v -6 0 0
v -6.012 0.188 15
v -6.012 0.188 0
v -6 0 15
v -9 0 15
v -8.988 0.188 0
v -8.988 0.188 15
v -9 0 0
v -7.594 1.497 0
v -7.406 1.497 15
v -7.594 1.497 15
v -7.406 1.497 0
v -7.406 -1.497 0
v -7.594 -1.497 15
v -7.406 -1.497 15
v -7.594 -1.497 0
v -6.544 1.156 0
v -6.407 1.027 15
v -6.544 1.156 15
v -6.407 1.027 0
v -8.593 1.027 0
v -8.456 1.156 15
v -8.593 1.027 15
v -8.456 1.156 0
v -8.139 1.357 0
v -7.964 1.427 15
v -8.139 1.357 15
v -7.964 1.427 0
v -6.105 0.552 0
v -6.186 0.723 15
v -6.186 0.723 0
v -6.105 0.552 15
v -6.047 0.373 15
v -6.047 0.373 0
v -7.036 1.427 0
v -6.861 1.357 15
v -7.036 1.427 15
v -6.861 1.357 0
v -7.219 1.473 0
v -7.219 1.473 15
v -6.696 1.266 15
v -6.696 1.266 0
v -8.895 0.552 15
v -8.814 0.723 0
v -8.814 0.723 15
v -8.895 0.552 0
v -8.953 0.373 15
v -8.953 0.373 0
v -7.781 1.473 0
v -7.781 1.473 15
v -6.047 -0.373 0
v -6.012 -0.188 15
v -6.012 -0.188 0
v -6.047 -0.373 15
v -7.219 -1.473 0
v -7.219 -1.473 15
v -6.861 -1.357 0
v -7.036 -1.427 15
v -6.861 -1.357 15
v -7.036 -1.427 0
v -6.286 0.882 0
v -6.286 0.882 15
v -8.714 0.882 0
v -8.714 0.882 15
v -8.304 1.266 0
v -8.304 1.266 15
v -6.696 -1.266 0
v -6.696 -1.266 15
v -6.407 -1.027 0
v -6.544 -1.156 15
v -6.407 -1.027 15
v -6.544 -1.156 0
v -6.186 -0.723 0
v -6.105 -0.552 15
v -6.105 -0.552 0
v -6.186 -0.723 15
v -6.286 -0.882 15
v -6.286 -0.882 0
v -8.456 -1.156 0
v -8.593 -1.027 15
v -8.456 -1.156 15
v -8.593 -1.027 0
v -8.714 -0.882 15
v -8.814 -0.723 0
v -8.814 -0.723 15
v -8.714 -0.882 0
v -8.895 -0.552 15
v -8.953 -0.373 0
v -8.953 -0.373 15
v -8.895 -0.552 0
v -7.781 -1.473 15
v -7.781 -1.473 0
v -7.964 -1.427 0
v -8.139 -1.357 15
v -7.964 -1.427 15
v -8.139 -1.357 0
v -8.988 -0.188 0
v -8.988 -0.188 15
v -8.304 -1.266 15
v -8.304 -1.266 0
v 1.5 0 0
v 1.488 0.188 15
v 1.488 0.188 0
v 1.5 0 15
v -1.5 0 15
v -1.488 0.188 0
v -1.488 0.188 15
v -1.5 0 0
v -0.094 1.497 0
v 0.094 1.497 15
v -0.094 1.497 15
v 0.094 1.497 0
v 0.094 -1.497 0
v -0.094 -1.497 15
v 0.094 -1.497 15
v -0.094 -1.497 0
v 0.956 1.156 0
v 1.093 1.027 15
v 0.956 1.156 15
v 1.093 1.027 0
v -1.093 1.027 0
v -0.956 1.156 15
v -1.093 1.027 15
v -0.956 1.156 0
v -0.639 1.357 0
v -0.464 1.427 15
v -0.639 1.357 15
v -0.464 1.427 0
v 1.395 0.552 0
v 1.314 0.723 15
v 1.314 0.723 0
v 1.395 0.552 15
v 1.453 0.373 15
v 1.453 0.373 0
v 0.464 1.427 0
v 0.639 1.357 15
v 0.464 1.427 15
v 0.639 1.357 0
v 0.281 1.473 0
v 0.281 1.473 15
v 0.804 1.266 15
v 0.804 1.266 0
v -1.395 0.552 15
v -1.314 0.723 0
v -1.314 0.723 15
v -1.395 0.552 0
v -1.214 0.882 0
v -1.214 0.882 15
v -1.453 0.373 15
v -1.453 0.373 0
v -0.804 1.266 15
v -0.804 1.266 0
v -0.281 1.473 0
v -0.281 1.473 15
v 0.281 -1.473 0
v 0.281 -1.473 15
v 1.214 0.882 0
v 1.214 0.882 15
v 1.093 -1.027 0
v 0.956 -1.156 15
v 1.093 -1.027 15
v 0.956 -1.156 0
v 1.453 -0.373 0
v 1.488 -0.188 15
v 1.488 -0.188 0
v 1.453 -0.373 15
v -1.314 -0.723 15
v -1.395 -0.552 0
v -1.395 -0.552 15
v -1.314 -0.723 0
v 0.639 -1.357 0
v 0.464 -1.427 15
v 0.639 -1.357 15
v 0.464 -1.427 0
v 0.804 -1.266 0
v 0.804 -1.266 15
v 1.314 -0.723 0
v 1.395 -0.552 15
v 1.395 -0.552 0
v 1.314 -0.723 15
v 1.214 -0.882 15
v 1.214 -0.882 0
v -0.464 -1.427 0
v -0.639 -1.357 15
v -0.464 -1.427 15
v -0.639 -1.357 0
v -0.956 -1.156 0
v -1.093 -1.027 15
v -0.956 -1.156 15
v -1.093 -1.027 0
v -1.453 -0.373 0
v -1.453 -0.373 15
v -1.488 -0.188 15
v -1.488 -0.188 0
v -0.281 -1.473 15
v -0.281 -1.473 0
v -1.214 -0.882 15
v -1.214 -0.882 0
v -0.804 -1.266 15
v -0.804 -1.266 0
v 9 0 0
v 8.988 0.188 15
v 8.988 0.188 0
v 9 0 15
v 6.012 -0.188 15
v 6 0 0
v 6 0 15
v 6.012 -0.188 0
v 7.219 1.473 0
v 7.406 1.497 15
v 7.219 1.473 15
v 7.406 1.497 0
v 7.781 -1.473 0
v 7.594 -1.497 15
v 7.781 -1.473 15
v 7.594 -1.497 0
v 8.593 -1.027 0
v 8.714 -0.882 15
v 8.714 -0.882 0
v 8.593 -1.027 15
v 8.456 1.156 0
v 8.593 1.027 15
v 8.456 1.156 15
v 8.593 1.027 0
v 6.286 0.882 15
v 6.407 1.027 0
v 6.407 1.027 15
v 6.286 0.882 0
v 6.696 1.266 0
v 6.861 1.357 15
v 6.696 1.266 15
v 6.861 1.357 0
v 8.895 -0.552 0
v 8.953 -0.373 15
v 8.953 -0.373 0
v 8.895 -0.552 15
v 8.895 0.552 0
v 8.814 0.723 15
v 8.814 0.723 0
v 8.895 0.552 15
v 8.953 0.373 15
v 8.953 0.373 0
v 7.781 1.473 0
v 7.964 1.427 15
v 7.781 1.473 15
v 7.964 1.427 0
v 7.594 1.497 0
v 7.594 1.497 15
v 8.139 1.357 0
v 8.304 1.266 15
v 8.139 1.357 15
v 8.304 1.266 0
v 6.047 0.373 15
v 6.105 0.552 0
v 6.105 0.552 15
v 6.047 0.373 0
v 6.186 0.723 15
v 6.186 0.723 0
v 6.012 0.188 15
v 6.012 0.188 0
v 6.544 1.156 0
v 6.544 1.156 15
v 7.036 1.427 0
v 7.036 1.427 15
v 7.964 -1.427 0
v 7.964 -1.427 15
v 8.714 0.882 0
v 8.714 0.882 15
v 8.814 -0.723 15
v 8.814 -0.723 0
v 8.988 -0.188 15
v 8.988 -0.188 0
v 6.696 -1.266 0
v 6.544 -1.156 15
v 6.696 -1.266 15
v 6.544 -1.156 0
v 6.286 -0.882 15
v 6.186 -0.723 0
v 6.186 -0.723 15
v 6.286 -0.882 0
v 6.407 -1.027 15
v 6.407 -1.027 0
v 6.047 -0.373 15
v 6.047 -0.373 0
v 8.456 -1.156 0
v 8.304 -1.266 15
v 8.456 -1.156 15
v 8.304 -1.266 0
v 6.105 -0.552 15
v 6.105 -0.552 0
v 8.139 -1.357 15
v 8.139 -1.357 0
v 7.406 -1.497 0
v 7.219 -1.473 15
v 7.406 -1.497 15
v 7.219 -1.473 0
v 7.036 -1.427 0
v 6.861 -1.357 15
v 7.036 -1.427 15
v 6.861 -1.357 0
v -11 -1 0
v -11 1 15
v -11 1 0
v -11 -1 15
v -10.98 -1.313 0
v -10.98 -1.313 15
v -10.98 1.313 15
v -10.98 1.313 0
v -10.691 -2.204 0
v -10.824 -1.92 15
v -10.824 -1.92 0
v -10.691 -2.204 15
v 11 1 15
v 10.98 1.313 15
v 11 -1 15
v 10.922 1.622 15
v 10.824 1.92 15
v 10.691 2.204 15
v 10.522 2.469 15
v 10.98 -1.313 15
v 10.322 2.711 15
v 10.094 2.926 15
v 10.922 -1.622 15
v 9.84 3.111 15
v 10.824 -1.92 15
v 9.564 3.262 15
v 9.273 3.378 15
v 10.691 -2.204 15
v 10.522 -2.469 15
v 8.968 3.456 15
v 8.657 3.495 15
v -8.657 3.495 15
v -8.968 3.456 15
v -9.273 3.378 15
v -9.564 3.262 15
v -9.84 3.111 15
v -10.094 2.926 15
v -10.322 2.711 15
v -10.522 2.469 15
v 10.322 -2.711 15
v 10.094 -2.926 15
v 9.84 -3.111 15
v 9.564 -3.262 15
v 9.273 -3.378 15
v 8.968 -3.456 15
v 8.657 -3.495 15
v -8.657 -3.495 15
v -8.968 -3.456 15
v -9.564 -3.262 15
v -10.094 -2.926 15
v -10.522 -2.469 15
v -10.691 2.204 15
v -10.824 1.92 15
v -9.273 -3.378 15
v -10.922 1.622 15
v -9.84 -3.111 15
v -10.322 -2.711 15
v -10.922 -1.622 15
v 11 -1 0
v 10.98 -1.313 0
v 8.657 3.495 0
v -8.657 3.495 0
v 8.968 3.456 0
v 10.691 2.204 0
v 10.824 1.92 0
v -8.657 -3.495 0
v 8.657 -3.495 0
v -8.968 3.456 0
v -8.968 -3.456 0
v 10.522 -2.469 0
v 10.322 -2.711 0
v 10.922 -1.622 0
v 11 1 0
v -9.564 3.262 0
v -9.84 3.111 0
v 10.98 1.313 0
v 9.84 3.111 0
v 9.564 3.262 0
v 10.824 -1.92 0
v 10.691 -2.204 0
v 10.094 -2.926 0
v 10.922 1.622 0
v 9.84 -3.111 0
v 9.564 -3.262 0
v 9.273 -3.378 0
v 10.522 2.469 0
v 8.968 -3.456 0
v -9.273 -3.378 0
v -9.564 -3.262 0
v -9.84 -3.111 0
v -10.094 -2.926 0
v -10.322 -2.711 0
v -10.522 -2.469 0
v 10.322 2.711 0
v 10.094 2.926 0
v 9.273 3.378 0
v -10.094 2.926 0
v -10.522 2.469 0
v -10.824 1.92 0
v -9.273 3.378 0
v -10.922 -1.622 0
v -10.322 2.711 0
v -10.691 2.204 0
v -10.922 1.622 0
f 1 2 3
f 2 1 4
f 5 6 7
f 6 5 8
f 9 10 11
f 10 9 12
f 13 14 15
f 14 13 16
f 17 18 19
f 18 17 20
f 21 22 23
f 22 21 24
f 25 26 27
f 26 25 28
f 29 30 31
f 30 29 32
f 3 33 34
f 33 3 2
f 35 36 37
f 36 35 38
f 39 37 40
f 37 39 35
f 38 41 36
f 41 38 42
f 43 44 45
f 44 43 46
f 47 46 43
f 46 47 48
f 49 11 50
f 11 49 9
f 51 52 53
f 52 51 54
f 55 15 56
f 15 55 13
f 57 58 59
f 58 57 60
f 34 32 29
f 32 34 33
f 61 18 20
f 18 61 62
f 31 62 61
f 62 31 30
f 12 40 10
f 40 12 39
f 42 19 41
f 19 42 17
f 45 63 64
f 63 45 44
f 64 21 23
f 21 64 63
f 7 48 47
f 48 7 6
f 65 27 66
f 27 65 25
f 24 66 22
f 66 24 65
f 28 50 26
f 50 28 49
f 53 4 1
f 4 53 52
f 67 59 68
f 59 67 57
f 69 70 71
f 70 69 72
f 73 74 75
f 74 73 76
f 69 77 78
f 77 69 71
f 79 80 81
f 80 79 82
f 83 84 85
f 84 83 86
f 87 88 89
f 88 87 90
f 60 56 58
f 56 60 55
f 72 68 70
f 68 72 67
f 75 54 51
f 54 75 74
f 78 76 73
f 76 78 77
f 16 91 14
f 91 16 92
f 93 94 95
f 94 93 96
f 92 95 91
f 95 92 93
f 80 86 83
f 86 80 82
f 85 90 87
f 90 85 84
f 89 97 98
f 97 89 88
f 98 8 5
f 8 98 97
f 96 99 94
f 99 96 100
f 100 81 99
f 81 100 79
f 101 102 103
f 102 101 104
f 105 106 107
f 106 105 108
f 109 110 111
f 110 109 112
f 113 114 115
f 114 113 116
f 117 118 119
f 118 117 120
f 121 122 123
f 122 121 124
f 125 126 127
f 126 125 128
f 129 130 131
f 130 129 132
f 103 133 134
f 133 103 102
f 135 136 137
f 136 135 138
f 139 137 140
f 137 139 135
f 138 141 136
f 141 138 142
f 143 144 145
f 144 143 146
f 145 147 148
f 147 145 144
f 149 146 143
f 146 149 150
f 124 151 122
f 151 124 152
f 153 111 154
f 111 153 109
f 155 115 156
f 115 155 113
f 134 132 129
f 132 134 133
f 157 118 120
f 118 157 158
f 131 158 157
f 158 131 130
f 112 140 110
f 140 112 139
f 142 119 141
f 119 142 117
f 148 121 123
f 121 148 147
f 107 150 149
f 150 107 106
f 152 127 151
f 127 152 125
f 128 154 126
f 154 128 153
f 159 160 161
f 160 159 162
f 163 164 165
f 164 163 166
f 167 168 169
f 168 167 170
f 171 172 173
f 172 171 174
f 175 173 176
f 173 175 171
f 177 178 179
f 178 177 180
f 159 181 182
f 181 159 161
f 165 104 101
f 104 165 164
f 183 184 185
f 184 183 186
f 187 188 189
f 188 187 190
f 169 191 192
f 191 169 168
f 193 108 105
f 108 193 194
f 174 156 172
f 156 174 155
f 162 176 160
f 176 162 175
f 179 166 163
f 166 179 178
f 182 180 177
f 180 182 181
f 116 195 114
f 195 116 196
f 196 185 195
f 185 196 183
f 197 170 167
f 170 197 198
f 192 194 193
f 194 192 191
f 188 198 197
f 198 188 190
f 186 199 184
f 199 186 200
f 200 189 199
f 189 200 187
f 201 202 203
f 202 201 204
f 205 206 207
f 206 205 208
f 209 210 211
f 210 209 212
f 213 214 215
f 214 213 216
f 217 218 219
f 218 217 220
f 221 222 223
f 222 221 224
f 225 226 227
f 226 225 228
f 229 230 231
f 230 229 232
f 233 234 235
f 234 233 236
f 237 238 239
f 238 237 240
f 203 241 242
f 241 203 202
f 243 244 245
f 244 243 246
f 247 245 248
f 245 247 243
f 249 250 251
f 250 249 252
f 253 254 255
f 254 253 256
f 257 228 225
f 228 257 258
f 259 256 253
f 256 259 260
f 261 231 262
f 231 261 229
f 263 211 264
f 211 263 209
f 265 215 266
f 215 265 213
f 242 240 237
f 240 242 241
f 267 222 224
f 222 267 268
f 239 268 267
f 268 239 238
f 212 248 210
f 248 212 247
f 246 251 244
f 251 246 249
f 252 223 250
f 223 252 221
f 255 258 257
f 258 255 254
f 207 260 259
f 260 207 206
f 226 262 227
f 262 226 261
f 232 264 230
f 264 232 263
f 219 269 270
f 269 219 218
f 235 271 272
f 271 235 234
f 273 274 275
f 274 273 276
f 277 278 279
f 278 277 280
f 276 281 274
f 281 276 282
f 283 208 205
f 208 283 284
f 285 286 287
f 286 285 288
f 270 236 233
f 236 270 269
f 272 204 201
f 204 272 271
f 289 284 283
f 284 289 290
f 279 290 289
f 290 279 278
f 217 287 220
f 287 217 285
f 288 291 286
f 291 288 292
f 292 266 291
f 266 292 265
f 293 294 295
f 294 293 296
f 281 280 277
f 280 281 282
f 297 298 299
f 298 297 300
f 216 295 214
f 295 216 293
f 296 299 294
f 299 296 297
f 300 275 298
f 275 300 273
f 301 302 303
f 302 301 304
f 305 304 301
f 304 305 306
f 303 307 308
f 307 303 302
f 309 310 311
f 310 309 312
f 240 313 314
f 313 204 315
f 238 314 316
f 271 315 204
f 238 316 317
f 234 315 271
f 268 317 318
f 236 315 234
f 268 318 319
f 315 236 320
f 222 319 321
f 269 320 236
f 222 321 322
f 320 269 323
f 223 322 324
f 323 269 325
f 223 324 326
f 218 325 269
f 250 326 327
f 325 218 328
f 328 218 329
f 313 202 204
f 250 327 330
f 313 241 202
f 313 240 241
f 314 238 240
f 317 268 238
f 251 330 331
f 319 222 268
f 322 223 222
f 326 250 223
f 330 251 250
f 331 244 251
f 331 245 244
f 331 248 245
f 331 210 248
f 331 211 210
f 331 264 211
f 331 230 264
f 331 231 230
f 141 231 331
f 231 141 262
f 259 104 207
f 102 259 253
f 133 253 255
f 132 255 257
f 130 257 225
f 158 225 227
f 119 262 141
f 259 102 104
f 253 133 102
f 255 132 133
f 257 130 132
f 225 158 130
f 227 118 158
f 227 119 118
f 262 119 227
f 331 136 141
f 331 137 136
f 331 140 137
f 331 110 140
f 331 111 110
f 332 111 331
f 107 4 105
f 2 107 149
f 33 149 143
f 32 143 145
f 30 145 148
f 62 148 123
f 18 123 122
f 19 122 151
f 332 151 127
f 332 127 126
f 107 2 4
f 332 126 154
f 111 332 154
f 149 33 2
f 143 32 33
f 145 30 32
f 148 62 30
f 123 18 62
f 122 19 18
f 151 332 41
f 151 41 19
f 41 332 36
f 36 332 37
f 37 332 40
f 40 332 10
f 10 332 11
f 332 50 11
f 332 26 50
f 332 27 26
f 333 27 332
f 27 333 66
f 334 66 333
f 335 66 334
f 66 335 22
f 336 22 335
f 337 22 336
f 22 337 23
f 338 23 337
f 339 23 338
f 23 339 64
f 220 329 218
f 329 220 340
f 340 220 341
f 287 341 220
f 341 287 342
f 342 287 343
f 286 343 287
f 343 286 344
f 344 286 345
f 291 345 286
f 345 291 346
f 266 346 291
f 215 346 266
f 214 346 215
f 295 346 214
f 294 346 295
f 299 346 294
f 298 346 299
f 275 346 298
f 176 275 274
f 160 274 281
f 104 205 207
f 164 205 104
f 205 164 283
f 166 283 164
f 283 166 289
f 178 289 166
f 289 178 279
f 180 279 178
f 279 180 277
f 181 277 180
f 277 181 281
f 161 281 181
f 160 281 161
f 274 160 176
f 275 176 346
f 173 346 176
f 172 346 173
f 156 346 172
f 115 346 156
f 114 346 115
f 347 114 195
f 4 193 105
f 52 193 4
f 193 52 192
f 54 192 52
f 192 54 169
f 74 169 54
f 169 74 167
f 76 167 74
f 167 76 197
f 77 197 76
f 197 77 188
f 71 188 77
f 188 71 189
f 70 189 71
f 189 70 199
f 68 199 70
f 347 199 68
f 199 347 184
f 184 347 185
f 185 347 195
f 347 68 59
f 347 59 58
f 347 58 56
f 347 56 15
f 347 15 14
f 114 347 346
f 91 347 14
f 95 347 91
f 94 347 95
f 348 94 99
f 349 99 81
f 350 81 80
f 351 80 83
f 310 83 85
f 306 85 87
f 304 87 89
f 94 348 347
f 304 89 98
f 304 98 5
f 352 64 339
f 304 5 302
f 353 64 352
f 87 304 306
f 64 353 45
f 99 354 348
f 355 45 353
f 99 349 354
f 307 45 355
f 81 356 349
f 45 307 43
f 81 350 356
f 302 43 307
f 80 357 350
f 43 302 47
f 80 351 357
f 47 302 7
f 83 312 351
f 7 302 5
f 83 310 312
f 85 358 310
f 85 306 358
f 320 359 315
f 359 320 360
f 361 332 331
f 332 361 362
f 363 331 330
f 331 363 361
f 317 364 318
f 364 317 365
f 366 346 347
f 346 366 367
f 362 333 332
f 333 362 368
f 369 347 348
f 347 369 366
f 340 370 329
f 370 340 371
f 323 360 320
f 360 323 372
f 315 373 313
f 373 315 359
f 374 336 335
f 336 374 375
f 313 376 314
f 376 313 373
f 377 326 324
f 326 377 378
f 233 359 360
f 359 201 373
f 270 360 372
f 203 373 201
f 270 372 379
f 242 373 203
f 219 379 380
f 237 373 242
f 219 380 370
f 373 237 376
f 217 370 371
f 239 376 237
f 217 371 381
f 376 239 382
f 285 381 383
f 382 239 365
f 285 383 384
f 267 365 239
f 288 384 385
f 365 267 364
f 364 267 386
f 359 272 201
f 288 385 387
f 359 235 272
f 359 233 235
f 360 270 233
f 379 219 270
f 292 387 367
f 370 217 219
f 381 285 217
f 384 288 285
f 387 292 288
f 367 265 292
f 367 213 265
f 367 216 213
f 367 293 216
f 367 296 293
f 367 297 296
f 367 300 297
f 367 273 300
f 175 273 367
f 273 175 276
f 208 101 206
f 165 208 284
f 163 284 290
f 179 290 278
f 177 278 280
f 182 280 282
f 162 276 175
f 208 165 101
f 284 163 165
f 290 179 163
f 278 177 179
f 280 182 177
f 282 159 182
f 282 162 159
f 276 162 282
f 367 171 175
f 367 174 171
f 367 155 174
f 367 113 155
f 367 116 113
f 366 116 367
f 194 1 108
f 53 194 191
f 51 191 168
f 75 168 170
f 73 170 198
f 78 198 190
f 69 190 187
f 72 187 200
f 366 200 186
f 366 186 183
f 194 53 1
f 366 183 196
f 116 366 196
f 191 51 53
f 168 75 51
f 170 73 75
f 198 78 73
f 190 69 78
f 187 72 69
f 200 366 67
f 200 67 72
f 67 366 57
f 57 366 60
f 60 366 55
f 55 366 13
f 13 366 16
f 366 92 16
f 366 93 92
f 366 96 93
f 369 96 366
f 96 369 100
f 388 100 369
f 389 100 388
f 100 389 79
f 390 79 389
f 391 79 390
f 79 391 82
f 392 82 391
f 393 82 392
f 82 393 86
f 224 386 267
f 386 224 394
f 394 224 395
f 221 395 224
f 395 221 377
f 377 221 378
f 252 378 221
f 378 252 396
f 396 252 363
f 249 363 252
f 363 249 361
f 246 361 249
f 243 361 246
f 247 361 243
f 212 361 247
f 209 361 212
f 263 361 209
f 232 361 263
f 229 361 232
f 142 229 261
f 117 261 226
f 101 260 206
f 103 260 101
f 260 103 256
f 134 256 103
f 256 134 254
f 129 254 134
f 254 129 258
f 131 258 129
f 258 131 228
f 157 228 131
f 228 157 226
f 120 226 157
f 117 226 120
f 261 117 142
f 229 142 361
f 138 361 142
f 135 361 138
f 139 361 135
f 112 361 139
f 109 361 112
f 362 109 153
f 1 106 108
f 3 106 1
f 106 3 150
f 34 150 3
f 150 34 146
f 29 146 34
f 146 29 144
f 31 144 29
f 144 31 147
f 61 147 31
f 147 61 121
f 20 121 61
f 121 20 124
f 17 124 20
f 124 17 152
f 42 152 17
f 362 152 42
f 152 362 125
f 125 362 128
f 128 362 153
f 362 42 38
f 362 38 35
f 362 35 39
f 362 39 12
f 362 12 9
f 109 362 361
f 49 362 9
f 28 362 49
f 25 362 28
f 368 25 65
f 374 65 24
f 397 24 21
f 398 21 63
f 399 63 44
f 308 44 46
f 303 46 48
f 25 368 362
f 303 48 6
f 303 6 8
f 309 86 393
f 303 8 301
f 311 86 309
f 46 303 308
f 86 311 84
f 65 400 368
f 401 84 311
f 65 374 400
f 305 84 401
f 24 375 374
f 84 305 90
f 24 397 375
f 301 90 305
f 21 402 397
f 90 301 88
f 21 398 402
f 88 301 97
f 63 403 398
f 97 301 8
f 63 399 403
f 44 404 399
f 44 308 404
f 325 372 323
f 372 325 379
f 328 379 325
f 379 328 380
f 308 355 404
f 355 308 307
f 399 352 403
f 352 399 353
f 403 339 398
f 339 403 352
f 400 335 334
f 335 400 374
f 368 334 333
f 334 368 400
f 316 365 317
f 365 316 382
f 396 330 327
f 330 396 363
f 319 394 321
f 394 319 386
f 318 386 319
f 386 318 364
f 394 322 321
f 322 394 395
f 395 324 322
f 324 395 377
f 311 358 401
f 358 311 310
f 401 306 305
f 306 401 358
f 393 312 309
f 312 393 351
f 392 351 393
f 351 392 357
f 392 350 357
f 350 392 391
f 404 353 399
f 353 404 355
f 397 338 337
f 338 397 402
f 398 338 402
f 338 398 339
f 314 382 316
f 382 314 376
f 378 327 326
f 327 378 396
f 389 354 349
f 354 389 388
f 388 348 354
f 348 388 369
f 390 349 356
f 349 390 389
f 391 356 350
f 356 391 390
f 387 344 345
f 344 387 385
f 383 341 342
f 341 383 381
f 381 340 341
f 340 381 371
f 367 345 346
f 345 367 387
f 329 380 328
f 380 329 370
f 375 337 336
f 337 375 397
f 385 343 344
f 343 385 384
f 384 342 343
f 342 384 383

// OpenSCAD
$fn = 50;


difference() {
	union() {
		translate(v = [0, 0, 0]) {
			rotate(a = [0, 0, 0]) {
				hull() {
					translate(v = [-8.5000000000, 1.0000000000, 0]) {
						rotate(a = [0, 0, 0]) {
							translate(v = [0, 0, 0]) {
								rotate(a = [0, 0, 0]) {
									cylinder(h = 15, r = 2.5000000000);
								}
							}
						}
					}
					translate(v = [8.5000000000, 1.0000000000, 0]) {
						rotate(a = [0, 0, 0]) {
							translate(v = [0, 0, 0]) {
								rotate(a = [0, 0, 0]) {
									cylinder(h = 15, r = 2.5000000000);
								}
							}
						}
					}
					translate(v = [-8.5000000000, -1.0000000000, 0]) {
						rotate(a = [0, 0, 0]) {
							translate(v = [0, 0, 0]) {
								rotate(a = [0, 0, 0]) {
									cylinder(h = 15, r = 2.5000000000);
								}
							}
						}
					}
					translate(v = [8.5000000000, -1.0000000000, 0]) {
						rotate(a = [0, 0, 0]) {
							translate(v = [0, 0, 0]) {
								rotate(a = [0, 0, 0]) {
									cylinder(h = 15, r = 2.5000000000);
								}
							}
						}
					}
				}
			}
		}
	}
	union() {
		translate(v = [-7.5000000000, 0.0000000000, 0]) {
			rotate(a = [0, 0, 0]) {
				translate(v = [0, 0, -50]) {
					rotate(a = [0, 0, 0]) {
						cylinder(h = 100, r = 1.5000000000);
					}
				}
			}
		}
		translate(v = [0.0000000000, 0.0000000000, 0]) {
			rotate(a = [0, 0, 0]) {
				translate(v = [0, 0, -50]) {
					rotate(a = [0, 0, 0]) {
						cylinder(h = 100, r = 1.5000000000);
					}
				}
			}
		}
		translate(v = [7.5000000000, 0.0000000000, 0]) {
			rotate(a = [0, 0, 0]) {
				translate(v = [0, 0, -50]) {
					rotate(a = [0, 0, 0]) {
						cylinder(h = 100, r = 1.5000000000);
					}
				}
			}
		}
	}
}
